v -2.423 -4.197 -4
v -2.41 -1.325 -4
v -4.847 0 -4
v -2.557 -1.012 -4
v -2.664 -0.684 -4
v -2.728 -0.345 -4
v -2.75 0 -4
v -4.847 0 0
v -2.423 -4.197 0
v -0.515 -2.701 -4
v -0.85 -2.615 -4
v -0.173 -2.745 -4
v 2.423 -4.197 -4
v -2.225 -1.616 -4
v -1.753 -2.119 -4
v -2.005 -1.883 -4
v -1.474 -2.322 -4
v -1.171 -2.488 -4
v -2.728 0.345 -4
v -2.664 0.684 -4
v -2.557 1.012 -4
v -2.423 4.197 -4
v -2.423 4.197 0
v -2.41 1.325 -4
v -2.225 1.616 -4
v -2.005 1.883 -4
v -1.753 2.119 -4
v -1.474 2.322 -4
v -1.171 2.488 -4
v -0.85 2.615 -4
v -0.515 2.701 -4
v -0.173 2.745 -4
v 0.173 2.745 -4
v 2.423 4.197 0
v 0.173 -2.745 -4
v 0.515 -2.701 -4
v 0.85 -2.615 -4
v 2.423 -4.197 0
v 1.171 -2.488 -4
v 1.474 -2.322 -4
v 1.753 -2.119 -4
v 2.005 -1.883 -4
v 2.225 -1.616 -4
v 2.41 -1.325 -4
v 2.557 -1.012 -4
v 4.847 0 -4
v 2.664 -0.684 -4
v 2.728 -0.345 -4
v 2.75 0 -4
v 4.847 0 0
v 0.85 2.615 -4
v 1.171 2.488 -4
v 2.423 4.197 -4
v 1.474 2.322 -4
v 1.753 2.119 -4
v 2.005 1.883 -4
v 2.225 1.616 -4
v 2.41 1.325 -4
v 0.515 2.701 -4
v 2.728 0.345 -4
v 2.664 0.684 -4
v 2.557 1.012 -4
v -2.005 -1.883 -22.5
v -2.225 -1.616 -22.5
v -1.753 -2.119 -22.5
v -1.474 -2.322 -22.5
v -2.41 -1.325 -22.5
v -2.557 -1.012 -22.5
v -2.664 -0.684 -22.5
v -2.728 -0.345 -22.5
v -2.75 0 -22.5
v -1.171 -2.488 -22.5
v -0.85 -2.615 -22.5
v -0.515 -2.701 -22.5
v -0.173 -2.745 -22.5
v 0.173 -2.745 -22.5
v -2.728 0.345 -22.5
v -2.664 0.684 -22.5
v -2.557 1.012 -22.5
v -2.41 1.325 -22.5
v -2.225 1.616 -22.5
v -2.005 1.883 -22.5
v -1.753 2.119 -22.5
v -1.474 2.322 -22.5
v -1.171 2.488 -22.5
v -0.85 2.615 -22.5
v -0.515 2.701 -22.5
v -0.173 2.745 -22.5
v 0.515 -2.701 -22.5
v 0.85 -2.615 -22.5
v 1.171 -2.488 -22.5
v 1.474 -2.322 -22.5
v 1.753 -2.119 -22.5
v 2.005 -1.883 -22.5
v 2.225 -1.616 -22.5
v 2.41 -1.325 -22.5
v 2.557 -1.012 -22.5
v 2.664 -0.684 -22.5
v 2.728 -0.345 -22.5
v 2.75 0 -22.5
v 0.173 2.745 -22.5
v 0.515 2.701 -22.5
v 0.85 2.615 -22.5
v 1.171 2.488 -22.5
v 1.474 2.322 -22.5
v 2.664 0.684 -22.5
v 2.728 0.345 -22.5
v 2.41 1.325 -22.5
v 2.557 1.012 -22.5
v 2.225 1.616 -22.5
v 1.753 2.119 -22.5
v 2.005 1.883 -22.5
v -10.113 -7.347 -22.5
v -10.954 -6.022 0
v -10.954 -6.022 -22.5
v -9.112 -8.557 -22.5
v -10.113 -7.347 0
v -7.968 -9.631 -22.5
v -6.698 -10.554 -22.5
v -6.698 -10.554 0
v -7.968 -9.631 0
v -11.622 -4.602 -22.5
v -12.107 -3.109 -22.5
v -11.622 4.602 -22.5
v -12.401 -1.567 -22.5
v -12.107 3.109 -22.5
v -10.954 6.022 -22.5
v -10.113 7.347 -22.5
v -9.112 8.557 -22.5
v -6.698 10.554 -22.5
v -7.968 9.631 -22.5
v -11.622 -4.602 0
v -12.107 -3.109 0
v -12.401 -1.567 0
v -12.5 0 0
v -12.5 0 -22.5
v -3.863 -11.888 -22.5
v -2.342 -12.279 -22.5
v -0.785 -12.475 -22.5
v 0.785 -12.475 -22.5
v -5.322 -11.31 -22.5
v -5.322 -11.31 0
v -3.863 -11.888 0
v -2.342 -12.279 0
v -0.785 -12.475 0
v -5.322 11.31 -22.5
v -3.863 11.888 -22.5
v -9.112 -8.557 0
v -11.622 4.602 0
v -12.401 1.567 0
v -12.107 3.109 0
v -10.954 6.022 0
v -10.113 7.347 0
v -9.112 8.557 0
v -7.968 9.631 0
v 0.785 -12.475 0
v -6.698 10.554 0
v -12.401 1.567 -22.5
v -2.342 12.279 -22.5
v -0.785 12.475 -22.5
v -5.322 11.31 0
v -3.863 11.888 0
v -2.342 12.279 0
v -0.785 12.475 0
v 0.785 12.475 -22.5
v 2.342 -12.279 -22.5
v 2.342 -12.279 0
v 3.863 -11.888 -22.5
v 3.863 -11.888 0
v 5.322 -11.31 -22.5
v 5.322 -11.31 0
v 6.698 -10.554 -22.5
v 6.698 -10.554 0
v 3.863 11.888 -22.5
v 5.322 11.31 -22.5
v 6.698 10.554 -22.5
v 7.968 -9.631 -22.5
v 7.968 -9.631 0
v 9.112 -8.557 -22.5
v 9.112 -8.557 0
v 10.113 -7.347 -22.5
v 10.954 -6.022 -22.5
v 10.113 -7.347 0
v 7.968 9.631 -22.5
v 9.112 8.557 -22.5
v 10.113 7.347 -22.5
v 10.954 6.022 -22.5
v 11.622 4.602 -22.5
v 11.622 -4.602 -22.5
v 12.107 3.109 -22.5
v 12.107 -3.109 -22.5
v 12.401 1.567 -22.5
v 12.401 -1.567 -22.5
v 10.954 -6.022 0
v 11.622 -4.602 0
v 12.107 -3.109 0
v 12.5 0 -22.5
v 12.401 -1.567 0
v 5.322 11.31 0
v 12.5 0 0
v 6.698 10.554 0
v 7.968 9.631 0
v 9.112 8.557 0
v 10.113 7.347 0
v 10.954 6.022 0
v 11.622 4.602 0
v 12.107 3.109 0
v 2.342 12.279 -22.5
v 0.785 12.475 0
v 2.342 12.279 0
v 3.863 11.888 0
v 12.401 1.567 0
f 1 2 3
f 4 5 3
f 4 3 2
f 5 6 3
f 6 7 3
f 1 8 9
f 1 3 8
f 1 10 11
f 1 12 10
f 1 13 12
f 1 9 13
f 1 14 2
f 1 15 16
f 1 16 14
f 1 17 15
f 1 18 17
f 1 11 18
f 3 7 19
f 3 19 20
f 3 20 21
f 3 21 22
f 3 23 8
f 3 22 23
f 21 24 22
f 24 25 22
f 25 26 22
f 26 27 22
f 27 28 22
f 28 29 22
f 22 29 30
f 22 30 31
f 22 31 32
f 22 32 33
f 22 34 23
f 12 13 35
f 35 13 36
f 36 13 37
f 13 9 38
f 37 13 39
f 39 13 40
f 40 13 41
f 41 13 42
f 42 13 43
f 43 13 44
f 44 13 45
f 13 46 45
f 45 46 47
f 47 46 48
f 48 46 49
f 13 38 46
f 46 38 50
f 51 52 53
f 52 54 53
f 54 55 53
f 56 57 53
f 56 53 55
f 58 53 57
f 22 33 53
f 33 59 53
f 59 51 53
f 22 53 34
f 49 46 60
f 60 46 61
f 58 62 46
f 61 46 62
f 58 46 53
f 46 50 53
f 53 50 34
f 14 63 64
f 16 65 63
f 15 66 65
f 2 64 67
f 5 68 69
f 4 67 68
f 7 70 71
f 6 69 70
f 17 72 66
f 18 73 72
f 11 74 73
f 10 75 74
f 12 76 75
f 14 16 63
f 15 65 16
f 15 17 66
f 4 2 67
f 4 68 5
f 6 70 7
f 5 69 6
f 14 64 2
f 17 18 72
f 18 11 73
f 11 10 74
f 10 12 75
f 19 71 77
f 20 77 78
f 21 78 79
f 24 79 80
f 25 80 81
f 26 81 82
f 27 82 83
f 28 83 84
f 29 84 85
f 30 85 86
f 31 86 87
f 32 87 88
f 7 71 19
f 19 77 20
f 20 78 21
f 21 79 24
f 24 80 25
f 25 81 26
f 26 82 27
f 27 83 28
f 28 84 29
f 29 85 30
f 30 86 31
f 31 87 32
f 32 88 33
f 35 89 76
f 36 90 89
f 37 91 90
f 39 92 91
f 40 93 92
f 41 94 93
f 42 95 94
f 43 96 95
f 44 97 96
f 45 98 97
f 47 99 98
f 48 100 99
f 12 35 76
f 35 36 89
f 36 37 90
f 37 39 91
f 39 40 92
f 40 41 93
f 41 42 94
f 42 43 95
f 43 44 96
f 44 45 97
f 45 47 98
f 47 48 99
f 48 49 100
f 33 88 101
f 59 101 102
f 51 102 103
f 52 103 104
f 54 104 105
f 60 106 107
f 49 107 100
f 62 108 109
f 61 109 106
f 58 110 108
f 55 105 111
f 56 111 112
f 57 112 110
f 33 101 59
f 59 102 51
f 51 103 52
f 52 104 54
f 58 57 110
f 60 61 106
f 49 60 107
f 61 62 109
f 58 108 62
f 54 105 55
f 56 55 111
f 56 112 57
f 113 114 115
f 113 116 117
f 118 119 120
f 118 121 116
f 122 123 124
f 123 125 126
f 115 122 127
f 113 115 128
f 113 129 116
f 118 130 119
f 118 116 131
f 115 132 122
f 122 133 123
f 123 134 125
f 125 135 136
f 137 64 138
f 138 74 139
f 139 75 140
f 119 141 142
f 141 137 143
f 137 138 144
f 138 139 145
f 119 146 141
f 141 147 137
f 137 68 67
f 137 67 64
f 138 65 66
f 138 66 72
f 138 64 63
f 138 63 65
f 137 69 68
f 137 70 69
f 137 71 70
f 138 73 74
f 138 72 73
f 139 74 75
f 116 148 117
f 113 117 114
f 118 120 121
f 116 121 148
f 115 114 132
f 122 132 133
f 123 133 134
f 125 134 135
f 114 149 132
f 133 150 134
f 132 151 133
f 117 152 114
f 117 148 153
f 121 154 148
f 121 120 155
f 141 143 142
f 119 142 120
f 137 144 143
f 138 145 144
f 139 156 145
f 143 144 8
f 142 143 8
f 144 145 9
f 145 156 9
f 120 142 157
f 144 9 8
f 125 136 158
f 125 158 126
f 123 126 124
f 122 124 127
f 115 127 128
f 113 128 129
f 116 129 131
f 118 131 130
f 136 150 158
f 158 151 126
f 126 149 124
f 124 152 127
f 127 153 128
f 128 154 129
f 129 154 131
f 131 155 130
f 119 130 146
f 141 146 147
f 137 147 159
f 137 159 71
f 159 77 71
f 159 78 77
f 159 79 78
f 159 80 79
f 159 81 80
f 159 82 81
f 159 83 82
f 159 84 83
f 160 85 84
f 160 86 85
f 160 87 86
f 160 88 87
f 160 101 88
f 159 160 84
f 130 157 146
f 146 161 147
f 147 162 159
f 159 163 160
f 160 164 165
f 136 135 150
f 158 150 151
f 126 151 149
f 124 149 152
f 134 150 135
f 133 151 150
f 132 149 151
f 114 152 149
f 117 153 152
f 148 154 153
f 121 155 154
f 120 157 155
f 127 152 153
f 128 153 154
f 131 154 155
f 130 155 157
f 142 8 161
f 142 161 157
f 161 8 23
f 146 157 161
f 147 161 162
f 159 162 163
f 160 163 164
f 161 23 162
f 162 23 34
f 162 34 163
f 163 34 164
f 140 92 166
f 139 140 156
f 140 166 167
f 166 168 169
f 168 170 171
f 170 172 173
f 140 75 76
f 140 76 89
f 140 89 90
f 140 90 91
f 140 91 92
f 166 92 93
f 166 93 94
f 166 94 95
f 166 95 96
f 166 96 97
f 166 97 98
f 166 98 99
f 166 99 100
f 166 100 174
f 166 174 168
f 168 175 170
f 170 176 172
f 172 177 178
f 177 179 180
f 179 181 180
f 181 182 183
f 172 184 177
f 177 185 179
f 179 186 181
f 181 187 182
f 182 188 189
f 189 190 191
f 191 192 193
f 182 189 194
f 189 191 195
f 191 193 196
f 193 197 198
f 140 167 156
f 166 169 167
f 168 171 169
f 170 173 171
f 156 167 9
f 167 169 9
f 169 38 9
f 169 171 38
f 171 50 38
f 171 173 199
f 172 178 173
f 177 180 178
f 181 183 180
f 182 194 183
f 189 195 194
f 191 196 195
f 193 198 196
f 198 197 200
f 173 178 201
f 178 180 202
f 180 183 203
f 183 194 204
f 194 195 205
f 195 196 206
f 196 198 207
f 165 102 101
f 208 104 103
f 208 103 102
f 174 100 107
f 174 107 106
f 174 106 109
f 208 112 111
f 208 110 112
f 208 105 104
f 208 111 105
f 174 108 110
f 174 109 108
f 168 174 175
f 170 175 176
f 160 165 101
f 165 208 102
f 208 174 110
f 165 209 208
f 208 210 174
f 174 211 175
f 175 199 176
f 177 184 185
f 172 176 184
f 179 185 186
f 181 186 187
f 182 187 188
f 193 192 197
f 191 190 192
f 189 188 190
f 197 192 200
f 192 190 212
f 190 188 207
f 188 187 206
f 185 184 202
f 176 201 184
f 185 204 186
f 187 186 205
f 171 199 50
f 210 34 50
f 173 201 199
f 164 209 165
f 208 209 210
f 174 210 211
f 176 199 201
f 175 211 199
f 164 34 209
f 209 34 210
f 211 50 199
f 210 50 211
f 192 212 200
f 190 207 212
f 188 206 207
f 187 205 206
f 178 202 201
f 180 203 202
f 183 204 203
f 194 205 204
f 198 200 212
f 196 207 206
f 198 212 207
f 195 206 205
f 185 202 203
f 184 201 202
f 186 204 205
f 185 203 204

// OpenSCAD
$fn = 50;


difference() {
	union() {
		translate(v = [0, 0, -22.5000000000]) {
			cylinder(h = 22.5000000000, r = 12.5000000000);
		}
	}
	union() {
		translate(v = [0, 0, 0]) {
			rotate(a = [0, 0, 0]) {
				difference() {
					union() {
						translate(v = [0, 0, -4]) {
							linear_extrude(height = 4) {
								polygon(points = [[4.8468000000, 0.0000000000], [2.4234000000, 4.1974519271], [-2.4234000000, 4.1974519271], [-4.8468000000, 0.0000000000], [-2.4234000000, -4.1974519271], [2.4234000000, -4.1974519271]]);
							}
						}
					}
					union();
				}
			}
		}
		#translate(v = [0, 0, -100.0000000000]) {
			cylinder(h = 200, r = 2.7500000000);
		}
	}
}
